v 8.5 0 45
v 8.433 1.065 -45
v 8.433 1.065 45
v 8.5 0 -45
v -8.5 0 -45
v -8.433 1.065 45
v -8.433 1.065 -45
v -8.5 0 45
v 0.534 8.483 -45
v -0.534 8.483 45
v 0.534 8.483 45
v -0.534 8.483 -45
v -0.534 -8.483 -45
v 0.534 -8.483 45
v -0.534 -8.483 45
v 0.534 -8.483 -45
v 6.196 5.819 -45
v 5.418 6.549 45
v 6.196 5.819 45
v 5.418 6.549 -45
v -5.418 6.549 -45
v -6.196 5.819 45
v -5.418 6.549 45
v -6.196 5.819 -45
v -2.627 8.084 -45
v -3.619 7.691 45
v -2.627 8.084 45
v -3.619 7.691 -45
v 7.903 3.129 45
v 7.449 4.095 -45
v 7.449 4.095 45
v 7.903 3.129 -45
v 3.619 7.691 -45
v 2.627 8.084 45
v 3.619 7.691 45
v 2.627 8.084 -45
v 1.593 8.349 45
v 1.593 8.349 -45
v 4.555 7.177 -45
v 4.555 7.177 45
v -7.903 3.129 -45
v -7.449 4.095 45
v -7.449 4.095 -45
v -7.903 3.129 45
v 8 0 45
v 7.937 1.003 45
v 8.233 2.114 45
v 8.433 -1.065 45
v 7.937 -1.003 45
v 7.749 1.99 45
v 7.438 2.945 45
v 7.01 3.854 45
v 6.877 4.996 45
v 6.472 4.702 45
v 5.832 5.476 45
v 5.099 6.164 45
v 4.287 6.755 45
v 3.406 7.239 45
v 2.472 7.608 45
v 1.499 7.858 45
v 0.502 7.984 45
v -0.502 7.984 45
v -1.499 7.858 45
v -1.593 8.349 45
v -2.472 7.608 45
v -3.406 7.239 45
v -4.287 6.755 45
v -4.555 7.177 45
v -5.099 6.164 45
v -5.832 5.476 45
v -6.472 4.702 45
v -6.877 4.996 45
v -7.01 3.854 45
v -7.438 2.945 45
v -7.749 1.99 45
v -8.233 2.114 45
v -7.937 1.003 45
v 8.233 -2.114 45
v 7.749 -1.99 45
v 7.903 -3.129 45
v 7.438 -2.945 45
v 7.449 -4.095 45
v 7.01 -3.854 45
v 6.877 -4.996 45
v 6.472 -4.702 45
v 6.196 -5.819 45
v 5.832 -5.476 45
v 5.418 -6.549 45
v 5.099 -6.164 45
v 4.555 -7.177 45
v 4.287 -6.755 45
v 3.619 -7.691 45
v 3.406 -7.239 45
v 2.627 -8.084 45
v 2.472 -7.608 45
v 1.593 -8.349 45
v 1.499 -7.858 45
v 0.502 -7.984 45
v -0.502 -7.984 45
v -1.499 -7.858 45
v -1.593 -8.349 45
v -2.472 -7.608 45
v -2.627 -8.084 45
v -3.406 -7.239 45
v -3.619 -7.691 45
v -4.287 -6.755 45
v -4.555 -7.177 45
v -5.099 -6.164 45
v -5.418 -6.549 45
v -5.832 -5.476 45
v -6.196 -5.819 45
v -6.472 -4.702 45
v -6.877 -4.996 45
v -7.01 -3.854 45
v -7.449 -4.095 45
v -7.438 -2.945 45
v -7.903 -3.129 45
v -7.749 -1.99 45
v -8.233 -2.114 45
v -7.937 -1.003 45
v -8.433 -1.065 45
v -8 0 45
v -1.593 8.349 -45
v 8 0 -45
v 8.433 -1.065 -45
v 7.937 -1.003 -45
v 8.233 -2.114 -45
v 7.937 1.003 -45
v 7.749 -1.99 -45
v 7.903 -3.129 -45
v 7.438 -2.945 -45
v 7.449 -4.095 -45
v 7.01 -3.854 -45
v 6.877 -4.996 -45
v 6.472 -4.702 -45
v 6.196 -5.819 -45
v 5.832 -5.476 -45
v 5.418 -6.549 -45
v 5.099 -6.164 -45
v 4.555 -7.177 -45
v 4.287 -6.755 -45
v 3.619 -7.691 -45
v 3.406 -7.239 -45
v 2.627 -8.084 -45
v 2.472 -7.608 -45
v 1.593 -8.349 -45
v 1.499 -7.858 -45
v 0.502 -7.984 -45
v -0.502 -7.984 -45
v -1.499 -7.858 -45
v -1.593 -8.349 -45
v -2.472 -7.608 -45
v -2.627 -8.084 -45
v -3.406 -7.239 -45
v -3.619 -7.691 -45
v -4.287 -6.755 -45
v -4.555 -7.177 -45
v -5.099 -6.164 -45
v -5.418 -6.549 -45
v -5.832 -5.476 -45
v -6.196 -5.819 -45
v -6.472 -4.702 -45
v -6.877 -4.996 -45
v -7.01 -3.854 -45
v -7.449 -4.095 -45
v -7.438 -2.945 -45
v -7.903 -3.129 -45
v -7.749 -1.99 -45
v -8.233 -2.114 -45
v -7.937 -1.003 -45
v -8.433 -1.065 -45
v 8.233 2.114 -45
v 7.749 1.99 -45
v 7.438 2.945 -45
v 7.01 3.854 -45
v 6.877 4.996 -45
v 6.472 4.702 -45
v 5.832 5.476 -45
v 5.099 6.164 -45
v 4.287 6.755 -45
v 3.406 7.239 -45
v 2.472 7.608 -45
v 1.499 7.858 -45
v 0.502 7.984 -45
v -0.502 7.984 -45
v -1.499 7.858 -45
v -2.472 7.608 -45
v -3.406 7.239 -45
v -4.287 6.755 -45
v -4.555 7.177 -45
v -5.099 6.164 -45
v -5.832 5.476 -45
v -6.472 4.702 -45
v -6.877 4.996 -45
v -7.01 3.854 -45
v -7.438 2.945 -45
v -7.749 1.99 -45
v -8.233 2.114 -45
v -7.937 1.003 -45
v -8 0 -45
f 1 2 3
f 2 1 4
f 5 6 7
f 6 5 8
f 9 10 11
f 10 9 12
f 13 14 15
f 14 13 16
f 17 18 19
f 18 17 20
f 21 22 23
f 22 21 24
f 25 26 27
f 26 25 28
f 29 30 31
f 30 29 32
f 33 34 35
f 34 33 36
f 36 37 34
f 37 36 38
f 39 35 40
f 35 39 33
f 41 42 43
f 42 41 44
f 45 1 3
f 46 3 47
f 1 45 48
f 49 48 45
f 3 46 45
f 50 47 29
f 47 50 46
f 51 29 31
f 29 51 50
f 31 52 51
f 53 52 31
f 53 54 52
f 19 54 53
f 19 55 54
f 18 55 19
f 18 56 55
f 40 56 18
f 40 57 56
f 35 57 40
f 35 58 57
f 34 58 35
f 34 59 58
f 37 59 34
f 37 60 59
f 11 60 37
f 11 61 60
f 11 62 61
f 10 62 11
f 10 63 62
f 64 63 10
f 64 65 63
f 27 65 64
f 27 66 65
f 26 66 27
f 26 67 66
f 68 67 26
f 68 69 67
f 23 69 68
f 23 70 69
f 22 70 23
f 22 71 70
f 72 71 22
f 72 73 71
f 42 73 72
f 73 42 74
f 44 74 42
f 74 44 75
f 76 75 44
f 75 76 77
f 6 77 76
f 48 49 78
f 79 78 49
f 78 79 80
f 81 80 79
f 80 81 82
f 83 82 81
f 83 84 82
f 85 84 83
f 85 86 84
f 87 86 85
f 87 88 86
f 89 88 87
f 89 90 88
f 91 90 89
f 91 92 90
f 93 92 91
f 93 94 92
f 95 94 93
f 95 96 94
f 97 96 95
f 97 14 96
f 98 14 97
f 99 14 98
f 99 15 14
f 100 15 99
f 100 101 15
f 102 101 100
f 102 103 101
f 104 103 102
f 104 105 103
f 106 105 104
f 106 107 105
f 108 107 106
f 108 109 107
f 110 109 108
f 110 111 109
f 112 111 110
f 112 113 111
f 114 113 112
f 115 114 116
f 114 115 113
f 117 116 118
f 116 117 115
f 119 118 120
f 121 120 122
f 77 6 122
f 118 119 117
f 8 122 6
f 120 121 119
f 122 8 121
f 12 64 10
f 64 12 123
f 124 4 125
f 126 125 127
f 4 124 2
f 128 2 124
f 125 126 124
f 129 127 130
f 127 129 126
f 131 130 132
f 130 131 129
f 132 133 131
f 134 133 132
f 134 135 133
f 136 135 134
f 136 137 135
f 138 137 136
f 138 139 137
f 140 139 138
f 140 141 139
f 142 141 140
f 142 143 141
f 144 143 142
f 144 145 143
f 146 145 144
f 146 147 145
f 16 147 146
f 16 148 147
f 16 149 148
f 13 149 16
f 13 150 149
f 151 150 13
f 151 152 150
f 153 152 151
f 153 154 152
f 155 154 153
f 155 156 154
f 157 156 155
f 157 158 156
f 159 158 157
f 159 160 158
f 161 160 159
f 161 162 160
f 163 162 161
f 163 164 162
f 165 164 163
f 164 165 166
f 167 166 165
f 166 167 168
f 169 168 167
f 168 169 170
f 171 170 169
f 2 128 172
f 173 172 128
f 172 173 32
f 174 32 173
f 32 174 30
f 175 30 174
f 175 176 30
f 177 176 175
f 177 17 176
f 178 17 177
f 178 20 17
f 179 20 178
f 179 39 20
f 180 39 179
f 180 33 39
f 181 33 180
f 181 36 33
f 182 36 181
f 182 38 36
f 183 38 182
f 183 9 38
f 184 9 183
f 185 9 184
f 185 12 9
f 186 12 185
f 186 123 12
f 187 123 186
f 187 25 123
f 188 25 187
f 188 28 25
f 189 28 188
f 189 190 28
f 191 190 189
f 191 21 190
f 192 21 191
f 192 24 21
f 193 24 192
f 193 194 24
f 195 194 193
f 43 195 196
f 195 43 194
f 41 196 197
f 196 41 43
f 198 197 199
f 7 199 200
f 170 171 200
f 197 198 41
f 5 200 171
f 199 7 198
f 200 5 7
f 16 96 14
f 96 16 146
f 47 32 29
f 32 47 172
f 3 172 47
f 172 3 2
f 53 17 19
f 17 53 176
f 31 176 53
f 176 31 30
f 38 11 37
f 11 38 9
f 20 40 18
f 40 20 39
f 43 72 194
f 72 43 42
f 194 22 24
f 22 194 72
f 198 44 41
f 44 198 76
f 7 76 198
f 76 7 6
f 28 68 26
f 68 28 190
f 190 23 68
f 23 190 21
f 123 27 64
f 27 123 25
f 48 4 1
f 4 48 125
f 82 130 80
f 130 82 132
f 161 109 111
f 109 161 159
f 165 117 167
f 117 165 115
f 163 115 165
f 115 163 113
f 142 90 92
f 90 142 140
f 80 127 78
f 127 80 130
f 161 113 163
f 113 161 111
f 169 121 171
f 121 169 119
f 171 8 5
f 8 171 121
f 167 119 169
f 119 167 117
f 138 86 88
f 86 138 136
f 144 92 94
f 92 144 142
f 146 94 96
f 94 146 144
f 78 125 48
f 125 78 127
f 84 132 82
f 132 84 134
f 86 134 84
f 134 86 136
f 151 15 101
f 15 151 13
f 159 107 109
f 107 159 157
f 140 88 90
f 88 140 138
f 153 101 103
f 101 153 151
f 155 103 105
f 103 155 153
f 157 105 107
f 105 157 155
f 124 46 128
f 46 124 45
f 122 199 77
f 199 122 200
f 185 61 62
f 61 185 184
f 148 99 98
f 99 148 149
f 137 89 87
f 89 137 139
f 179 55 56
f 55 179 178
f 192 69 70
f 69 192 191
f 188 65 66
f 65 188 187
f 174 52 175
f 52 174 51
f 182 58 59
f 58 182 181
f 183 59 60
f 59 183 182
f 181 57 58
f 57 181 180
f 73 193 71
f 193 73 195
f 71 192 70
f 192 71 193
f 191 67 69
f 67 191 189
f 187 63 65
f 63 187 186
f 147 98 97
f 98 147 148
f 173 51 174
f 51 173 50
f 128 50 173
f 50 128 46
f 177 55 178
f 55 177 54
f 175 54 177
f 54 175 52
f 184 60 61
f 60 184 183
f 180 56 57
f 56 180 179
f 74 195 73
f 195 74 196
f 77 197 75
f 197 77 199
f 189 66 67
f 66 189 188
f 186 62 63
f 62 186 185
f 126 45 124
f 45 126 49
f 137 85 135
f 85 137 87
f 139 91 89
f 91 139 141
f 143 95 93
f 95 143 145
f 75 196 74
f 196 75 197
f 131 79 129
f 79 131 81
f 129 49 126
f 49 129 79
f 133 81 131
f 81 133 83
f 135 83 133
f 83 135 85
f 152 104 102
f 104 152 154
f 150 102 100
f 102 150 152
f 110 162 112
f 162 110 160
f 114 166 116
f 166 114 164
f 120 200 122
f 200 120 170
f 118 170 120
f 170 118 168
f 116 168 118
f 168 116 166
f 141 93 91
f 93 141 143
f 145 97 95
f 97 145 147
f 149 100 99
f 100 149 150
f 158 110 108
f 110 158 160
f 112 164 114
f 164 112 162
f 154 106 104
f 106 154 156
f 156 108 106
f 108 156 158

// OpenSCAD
$fn = 50;


difference() {
	union() {
		translate(v = [0, 0, -45.0000000000]) {
			cylinder(h = 90, r = 8.5000000000);
		}
	}
	union() {
		translate(v = [0, 0, -100.0000000000]) {
			cylinder(h = 200, r = 8);
		}
	}
}
